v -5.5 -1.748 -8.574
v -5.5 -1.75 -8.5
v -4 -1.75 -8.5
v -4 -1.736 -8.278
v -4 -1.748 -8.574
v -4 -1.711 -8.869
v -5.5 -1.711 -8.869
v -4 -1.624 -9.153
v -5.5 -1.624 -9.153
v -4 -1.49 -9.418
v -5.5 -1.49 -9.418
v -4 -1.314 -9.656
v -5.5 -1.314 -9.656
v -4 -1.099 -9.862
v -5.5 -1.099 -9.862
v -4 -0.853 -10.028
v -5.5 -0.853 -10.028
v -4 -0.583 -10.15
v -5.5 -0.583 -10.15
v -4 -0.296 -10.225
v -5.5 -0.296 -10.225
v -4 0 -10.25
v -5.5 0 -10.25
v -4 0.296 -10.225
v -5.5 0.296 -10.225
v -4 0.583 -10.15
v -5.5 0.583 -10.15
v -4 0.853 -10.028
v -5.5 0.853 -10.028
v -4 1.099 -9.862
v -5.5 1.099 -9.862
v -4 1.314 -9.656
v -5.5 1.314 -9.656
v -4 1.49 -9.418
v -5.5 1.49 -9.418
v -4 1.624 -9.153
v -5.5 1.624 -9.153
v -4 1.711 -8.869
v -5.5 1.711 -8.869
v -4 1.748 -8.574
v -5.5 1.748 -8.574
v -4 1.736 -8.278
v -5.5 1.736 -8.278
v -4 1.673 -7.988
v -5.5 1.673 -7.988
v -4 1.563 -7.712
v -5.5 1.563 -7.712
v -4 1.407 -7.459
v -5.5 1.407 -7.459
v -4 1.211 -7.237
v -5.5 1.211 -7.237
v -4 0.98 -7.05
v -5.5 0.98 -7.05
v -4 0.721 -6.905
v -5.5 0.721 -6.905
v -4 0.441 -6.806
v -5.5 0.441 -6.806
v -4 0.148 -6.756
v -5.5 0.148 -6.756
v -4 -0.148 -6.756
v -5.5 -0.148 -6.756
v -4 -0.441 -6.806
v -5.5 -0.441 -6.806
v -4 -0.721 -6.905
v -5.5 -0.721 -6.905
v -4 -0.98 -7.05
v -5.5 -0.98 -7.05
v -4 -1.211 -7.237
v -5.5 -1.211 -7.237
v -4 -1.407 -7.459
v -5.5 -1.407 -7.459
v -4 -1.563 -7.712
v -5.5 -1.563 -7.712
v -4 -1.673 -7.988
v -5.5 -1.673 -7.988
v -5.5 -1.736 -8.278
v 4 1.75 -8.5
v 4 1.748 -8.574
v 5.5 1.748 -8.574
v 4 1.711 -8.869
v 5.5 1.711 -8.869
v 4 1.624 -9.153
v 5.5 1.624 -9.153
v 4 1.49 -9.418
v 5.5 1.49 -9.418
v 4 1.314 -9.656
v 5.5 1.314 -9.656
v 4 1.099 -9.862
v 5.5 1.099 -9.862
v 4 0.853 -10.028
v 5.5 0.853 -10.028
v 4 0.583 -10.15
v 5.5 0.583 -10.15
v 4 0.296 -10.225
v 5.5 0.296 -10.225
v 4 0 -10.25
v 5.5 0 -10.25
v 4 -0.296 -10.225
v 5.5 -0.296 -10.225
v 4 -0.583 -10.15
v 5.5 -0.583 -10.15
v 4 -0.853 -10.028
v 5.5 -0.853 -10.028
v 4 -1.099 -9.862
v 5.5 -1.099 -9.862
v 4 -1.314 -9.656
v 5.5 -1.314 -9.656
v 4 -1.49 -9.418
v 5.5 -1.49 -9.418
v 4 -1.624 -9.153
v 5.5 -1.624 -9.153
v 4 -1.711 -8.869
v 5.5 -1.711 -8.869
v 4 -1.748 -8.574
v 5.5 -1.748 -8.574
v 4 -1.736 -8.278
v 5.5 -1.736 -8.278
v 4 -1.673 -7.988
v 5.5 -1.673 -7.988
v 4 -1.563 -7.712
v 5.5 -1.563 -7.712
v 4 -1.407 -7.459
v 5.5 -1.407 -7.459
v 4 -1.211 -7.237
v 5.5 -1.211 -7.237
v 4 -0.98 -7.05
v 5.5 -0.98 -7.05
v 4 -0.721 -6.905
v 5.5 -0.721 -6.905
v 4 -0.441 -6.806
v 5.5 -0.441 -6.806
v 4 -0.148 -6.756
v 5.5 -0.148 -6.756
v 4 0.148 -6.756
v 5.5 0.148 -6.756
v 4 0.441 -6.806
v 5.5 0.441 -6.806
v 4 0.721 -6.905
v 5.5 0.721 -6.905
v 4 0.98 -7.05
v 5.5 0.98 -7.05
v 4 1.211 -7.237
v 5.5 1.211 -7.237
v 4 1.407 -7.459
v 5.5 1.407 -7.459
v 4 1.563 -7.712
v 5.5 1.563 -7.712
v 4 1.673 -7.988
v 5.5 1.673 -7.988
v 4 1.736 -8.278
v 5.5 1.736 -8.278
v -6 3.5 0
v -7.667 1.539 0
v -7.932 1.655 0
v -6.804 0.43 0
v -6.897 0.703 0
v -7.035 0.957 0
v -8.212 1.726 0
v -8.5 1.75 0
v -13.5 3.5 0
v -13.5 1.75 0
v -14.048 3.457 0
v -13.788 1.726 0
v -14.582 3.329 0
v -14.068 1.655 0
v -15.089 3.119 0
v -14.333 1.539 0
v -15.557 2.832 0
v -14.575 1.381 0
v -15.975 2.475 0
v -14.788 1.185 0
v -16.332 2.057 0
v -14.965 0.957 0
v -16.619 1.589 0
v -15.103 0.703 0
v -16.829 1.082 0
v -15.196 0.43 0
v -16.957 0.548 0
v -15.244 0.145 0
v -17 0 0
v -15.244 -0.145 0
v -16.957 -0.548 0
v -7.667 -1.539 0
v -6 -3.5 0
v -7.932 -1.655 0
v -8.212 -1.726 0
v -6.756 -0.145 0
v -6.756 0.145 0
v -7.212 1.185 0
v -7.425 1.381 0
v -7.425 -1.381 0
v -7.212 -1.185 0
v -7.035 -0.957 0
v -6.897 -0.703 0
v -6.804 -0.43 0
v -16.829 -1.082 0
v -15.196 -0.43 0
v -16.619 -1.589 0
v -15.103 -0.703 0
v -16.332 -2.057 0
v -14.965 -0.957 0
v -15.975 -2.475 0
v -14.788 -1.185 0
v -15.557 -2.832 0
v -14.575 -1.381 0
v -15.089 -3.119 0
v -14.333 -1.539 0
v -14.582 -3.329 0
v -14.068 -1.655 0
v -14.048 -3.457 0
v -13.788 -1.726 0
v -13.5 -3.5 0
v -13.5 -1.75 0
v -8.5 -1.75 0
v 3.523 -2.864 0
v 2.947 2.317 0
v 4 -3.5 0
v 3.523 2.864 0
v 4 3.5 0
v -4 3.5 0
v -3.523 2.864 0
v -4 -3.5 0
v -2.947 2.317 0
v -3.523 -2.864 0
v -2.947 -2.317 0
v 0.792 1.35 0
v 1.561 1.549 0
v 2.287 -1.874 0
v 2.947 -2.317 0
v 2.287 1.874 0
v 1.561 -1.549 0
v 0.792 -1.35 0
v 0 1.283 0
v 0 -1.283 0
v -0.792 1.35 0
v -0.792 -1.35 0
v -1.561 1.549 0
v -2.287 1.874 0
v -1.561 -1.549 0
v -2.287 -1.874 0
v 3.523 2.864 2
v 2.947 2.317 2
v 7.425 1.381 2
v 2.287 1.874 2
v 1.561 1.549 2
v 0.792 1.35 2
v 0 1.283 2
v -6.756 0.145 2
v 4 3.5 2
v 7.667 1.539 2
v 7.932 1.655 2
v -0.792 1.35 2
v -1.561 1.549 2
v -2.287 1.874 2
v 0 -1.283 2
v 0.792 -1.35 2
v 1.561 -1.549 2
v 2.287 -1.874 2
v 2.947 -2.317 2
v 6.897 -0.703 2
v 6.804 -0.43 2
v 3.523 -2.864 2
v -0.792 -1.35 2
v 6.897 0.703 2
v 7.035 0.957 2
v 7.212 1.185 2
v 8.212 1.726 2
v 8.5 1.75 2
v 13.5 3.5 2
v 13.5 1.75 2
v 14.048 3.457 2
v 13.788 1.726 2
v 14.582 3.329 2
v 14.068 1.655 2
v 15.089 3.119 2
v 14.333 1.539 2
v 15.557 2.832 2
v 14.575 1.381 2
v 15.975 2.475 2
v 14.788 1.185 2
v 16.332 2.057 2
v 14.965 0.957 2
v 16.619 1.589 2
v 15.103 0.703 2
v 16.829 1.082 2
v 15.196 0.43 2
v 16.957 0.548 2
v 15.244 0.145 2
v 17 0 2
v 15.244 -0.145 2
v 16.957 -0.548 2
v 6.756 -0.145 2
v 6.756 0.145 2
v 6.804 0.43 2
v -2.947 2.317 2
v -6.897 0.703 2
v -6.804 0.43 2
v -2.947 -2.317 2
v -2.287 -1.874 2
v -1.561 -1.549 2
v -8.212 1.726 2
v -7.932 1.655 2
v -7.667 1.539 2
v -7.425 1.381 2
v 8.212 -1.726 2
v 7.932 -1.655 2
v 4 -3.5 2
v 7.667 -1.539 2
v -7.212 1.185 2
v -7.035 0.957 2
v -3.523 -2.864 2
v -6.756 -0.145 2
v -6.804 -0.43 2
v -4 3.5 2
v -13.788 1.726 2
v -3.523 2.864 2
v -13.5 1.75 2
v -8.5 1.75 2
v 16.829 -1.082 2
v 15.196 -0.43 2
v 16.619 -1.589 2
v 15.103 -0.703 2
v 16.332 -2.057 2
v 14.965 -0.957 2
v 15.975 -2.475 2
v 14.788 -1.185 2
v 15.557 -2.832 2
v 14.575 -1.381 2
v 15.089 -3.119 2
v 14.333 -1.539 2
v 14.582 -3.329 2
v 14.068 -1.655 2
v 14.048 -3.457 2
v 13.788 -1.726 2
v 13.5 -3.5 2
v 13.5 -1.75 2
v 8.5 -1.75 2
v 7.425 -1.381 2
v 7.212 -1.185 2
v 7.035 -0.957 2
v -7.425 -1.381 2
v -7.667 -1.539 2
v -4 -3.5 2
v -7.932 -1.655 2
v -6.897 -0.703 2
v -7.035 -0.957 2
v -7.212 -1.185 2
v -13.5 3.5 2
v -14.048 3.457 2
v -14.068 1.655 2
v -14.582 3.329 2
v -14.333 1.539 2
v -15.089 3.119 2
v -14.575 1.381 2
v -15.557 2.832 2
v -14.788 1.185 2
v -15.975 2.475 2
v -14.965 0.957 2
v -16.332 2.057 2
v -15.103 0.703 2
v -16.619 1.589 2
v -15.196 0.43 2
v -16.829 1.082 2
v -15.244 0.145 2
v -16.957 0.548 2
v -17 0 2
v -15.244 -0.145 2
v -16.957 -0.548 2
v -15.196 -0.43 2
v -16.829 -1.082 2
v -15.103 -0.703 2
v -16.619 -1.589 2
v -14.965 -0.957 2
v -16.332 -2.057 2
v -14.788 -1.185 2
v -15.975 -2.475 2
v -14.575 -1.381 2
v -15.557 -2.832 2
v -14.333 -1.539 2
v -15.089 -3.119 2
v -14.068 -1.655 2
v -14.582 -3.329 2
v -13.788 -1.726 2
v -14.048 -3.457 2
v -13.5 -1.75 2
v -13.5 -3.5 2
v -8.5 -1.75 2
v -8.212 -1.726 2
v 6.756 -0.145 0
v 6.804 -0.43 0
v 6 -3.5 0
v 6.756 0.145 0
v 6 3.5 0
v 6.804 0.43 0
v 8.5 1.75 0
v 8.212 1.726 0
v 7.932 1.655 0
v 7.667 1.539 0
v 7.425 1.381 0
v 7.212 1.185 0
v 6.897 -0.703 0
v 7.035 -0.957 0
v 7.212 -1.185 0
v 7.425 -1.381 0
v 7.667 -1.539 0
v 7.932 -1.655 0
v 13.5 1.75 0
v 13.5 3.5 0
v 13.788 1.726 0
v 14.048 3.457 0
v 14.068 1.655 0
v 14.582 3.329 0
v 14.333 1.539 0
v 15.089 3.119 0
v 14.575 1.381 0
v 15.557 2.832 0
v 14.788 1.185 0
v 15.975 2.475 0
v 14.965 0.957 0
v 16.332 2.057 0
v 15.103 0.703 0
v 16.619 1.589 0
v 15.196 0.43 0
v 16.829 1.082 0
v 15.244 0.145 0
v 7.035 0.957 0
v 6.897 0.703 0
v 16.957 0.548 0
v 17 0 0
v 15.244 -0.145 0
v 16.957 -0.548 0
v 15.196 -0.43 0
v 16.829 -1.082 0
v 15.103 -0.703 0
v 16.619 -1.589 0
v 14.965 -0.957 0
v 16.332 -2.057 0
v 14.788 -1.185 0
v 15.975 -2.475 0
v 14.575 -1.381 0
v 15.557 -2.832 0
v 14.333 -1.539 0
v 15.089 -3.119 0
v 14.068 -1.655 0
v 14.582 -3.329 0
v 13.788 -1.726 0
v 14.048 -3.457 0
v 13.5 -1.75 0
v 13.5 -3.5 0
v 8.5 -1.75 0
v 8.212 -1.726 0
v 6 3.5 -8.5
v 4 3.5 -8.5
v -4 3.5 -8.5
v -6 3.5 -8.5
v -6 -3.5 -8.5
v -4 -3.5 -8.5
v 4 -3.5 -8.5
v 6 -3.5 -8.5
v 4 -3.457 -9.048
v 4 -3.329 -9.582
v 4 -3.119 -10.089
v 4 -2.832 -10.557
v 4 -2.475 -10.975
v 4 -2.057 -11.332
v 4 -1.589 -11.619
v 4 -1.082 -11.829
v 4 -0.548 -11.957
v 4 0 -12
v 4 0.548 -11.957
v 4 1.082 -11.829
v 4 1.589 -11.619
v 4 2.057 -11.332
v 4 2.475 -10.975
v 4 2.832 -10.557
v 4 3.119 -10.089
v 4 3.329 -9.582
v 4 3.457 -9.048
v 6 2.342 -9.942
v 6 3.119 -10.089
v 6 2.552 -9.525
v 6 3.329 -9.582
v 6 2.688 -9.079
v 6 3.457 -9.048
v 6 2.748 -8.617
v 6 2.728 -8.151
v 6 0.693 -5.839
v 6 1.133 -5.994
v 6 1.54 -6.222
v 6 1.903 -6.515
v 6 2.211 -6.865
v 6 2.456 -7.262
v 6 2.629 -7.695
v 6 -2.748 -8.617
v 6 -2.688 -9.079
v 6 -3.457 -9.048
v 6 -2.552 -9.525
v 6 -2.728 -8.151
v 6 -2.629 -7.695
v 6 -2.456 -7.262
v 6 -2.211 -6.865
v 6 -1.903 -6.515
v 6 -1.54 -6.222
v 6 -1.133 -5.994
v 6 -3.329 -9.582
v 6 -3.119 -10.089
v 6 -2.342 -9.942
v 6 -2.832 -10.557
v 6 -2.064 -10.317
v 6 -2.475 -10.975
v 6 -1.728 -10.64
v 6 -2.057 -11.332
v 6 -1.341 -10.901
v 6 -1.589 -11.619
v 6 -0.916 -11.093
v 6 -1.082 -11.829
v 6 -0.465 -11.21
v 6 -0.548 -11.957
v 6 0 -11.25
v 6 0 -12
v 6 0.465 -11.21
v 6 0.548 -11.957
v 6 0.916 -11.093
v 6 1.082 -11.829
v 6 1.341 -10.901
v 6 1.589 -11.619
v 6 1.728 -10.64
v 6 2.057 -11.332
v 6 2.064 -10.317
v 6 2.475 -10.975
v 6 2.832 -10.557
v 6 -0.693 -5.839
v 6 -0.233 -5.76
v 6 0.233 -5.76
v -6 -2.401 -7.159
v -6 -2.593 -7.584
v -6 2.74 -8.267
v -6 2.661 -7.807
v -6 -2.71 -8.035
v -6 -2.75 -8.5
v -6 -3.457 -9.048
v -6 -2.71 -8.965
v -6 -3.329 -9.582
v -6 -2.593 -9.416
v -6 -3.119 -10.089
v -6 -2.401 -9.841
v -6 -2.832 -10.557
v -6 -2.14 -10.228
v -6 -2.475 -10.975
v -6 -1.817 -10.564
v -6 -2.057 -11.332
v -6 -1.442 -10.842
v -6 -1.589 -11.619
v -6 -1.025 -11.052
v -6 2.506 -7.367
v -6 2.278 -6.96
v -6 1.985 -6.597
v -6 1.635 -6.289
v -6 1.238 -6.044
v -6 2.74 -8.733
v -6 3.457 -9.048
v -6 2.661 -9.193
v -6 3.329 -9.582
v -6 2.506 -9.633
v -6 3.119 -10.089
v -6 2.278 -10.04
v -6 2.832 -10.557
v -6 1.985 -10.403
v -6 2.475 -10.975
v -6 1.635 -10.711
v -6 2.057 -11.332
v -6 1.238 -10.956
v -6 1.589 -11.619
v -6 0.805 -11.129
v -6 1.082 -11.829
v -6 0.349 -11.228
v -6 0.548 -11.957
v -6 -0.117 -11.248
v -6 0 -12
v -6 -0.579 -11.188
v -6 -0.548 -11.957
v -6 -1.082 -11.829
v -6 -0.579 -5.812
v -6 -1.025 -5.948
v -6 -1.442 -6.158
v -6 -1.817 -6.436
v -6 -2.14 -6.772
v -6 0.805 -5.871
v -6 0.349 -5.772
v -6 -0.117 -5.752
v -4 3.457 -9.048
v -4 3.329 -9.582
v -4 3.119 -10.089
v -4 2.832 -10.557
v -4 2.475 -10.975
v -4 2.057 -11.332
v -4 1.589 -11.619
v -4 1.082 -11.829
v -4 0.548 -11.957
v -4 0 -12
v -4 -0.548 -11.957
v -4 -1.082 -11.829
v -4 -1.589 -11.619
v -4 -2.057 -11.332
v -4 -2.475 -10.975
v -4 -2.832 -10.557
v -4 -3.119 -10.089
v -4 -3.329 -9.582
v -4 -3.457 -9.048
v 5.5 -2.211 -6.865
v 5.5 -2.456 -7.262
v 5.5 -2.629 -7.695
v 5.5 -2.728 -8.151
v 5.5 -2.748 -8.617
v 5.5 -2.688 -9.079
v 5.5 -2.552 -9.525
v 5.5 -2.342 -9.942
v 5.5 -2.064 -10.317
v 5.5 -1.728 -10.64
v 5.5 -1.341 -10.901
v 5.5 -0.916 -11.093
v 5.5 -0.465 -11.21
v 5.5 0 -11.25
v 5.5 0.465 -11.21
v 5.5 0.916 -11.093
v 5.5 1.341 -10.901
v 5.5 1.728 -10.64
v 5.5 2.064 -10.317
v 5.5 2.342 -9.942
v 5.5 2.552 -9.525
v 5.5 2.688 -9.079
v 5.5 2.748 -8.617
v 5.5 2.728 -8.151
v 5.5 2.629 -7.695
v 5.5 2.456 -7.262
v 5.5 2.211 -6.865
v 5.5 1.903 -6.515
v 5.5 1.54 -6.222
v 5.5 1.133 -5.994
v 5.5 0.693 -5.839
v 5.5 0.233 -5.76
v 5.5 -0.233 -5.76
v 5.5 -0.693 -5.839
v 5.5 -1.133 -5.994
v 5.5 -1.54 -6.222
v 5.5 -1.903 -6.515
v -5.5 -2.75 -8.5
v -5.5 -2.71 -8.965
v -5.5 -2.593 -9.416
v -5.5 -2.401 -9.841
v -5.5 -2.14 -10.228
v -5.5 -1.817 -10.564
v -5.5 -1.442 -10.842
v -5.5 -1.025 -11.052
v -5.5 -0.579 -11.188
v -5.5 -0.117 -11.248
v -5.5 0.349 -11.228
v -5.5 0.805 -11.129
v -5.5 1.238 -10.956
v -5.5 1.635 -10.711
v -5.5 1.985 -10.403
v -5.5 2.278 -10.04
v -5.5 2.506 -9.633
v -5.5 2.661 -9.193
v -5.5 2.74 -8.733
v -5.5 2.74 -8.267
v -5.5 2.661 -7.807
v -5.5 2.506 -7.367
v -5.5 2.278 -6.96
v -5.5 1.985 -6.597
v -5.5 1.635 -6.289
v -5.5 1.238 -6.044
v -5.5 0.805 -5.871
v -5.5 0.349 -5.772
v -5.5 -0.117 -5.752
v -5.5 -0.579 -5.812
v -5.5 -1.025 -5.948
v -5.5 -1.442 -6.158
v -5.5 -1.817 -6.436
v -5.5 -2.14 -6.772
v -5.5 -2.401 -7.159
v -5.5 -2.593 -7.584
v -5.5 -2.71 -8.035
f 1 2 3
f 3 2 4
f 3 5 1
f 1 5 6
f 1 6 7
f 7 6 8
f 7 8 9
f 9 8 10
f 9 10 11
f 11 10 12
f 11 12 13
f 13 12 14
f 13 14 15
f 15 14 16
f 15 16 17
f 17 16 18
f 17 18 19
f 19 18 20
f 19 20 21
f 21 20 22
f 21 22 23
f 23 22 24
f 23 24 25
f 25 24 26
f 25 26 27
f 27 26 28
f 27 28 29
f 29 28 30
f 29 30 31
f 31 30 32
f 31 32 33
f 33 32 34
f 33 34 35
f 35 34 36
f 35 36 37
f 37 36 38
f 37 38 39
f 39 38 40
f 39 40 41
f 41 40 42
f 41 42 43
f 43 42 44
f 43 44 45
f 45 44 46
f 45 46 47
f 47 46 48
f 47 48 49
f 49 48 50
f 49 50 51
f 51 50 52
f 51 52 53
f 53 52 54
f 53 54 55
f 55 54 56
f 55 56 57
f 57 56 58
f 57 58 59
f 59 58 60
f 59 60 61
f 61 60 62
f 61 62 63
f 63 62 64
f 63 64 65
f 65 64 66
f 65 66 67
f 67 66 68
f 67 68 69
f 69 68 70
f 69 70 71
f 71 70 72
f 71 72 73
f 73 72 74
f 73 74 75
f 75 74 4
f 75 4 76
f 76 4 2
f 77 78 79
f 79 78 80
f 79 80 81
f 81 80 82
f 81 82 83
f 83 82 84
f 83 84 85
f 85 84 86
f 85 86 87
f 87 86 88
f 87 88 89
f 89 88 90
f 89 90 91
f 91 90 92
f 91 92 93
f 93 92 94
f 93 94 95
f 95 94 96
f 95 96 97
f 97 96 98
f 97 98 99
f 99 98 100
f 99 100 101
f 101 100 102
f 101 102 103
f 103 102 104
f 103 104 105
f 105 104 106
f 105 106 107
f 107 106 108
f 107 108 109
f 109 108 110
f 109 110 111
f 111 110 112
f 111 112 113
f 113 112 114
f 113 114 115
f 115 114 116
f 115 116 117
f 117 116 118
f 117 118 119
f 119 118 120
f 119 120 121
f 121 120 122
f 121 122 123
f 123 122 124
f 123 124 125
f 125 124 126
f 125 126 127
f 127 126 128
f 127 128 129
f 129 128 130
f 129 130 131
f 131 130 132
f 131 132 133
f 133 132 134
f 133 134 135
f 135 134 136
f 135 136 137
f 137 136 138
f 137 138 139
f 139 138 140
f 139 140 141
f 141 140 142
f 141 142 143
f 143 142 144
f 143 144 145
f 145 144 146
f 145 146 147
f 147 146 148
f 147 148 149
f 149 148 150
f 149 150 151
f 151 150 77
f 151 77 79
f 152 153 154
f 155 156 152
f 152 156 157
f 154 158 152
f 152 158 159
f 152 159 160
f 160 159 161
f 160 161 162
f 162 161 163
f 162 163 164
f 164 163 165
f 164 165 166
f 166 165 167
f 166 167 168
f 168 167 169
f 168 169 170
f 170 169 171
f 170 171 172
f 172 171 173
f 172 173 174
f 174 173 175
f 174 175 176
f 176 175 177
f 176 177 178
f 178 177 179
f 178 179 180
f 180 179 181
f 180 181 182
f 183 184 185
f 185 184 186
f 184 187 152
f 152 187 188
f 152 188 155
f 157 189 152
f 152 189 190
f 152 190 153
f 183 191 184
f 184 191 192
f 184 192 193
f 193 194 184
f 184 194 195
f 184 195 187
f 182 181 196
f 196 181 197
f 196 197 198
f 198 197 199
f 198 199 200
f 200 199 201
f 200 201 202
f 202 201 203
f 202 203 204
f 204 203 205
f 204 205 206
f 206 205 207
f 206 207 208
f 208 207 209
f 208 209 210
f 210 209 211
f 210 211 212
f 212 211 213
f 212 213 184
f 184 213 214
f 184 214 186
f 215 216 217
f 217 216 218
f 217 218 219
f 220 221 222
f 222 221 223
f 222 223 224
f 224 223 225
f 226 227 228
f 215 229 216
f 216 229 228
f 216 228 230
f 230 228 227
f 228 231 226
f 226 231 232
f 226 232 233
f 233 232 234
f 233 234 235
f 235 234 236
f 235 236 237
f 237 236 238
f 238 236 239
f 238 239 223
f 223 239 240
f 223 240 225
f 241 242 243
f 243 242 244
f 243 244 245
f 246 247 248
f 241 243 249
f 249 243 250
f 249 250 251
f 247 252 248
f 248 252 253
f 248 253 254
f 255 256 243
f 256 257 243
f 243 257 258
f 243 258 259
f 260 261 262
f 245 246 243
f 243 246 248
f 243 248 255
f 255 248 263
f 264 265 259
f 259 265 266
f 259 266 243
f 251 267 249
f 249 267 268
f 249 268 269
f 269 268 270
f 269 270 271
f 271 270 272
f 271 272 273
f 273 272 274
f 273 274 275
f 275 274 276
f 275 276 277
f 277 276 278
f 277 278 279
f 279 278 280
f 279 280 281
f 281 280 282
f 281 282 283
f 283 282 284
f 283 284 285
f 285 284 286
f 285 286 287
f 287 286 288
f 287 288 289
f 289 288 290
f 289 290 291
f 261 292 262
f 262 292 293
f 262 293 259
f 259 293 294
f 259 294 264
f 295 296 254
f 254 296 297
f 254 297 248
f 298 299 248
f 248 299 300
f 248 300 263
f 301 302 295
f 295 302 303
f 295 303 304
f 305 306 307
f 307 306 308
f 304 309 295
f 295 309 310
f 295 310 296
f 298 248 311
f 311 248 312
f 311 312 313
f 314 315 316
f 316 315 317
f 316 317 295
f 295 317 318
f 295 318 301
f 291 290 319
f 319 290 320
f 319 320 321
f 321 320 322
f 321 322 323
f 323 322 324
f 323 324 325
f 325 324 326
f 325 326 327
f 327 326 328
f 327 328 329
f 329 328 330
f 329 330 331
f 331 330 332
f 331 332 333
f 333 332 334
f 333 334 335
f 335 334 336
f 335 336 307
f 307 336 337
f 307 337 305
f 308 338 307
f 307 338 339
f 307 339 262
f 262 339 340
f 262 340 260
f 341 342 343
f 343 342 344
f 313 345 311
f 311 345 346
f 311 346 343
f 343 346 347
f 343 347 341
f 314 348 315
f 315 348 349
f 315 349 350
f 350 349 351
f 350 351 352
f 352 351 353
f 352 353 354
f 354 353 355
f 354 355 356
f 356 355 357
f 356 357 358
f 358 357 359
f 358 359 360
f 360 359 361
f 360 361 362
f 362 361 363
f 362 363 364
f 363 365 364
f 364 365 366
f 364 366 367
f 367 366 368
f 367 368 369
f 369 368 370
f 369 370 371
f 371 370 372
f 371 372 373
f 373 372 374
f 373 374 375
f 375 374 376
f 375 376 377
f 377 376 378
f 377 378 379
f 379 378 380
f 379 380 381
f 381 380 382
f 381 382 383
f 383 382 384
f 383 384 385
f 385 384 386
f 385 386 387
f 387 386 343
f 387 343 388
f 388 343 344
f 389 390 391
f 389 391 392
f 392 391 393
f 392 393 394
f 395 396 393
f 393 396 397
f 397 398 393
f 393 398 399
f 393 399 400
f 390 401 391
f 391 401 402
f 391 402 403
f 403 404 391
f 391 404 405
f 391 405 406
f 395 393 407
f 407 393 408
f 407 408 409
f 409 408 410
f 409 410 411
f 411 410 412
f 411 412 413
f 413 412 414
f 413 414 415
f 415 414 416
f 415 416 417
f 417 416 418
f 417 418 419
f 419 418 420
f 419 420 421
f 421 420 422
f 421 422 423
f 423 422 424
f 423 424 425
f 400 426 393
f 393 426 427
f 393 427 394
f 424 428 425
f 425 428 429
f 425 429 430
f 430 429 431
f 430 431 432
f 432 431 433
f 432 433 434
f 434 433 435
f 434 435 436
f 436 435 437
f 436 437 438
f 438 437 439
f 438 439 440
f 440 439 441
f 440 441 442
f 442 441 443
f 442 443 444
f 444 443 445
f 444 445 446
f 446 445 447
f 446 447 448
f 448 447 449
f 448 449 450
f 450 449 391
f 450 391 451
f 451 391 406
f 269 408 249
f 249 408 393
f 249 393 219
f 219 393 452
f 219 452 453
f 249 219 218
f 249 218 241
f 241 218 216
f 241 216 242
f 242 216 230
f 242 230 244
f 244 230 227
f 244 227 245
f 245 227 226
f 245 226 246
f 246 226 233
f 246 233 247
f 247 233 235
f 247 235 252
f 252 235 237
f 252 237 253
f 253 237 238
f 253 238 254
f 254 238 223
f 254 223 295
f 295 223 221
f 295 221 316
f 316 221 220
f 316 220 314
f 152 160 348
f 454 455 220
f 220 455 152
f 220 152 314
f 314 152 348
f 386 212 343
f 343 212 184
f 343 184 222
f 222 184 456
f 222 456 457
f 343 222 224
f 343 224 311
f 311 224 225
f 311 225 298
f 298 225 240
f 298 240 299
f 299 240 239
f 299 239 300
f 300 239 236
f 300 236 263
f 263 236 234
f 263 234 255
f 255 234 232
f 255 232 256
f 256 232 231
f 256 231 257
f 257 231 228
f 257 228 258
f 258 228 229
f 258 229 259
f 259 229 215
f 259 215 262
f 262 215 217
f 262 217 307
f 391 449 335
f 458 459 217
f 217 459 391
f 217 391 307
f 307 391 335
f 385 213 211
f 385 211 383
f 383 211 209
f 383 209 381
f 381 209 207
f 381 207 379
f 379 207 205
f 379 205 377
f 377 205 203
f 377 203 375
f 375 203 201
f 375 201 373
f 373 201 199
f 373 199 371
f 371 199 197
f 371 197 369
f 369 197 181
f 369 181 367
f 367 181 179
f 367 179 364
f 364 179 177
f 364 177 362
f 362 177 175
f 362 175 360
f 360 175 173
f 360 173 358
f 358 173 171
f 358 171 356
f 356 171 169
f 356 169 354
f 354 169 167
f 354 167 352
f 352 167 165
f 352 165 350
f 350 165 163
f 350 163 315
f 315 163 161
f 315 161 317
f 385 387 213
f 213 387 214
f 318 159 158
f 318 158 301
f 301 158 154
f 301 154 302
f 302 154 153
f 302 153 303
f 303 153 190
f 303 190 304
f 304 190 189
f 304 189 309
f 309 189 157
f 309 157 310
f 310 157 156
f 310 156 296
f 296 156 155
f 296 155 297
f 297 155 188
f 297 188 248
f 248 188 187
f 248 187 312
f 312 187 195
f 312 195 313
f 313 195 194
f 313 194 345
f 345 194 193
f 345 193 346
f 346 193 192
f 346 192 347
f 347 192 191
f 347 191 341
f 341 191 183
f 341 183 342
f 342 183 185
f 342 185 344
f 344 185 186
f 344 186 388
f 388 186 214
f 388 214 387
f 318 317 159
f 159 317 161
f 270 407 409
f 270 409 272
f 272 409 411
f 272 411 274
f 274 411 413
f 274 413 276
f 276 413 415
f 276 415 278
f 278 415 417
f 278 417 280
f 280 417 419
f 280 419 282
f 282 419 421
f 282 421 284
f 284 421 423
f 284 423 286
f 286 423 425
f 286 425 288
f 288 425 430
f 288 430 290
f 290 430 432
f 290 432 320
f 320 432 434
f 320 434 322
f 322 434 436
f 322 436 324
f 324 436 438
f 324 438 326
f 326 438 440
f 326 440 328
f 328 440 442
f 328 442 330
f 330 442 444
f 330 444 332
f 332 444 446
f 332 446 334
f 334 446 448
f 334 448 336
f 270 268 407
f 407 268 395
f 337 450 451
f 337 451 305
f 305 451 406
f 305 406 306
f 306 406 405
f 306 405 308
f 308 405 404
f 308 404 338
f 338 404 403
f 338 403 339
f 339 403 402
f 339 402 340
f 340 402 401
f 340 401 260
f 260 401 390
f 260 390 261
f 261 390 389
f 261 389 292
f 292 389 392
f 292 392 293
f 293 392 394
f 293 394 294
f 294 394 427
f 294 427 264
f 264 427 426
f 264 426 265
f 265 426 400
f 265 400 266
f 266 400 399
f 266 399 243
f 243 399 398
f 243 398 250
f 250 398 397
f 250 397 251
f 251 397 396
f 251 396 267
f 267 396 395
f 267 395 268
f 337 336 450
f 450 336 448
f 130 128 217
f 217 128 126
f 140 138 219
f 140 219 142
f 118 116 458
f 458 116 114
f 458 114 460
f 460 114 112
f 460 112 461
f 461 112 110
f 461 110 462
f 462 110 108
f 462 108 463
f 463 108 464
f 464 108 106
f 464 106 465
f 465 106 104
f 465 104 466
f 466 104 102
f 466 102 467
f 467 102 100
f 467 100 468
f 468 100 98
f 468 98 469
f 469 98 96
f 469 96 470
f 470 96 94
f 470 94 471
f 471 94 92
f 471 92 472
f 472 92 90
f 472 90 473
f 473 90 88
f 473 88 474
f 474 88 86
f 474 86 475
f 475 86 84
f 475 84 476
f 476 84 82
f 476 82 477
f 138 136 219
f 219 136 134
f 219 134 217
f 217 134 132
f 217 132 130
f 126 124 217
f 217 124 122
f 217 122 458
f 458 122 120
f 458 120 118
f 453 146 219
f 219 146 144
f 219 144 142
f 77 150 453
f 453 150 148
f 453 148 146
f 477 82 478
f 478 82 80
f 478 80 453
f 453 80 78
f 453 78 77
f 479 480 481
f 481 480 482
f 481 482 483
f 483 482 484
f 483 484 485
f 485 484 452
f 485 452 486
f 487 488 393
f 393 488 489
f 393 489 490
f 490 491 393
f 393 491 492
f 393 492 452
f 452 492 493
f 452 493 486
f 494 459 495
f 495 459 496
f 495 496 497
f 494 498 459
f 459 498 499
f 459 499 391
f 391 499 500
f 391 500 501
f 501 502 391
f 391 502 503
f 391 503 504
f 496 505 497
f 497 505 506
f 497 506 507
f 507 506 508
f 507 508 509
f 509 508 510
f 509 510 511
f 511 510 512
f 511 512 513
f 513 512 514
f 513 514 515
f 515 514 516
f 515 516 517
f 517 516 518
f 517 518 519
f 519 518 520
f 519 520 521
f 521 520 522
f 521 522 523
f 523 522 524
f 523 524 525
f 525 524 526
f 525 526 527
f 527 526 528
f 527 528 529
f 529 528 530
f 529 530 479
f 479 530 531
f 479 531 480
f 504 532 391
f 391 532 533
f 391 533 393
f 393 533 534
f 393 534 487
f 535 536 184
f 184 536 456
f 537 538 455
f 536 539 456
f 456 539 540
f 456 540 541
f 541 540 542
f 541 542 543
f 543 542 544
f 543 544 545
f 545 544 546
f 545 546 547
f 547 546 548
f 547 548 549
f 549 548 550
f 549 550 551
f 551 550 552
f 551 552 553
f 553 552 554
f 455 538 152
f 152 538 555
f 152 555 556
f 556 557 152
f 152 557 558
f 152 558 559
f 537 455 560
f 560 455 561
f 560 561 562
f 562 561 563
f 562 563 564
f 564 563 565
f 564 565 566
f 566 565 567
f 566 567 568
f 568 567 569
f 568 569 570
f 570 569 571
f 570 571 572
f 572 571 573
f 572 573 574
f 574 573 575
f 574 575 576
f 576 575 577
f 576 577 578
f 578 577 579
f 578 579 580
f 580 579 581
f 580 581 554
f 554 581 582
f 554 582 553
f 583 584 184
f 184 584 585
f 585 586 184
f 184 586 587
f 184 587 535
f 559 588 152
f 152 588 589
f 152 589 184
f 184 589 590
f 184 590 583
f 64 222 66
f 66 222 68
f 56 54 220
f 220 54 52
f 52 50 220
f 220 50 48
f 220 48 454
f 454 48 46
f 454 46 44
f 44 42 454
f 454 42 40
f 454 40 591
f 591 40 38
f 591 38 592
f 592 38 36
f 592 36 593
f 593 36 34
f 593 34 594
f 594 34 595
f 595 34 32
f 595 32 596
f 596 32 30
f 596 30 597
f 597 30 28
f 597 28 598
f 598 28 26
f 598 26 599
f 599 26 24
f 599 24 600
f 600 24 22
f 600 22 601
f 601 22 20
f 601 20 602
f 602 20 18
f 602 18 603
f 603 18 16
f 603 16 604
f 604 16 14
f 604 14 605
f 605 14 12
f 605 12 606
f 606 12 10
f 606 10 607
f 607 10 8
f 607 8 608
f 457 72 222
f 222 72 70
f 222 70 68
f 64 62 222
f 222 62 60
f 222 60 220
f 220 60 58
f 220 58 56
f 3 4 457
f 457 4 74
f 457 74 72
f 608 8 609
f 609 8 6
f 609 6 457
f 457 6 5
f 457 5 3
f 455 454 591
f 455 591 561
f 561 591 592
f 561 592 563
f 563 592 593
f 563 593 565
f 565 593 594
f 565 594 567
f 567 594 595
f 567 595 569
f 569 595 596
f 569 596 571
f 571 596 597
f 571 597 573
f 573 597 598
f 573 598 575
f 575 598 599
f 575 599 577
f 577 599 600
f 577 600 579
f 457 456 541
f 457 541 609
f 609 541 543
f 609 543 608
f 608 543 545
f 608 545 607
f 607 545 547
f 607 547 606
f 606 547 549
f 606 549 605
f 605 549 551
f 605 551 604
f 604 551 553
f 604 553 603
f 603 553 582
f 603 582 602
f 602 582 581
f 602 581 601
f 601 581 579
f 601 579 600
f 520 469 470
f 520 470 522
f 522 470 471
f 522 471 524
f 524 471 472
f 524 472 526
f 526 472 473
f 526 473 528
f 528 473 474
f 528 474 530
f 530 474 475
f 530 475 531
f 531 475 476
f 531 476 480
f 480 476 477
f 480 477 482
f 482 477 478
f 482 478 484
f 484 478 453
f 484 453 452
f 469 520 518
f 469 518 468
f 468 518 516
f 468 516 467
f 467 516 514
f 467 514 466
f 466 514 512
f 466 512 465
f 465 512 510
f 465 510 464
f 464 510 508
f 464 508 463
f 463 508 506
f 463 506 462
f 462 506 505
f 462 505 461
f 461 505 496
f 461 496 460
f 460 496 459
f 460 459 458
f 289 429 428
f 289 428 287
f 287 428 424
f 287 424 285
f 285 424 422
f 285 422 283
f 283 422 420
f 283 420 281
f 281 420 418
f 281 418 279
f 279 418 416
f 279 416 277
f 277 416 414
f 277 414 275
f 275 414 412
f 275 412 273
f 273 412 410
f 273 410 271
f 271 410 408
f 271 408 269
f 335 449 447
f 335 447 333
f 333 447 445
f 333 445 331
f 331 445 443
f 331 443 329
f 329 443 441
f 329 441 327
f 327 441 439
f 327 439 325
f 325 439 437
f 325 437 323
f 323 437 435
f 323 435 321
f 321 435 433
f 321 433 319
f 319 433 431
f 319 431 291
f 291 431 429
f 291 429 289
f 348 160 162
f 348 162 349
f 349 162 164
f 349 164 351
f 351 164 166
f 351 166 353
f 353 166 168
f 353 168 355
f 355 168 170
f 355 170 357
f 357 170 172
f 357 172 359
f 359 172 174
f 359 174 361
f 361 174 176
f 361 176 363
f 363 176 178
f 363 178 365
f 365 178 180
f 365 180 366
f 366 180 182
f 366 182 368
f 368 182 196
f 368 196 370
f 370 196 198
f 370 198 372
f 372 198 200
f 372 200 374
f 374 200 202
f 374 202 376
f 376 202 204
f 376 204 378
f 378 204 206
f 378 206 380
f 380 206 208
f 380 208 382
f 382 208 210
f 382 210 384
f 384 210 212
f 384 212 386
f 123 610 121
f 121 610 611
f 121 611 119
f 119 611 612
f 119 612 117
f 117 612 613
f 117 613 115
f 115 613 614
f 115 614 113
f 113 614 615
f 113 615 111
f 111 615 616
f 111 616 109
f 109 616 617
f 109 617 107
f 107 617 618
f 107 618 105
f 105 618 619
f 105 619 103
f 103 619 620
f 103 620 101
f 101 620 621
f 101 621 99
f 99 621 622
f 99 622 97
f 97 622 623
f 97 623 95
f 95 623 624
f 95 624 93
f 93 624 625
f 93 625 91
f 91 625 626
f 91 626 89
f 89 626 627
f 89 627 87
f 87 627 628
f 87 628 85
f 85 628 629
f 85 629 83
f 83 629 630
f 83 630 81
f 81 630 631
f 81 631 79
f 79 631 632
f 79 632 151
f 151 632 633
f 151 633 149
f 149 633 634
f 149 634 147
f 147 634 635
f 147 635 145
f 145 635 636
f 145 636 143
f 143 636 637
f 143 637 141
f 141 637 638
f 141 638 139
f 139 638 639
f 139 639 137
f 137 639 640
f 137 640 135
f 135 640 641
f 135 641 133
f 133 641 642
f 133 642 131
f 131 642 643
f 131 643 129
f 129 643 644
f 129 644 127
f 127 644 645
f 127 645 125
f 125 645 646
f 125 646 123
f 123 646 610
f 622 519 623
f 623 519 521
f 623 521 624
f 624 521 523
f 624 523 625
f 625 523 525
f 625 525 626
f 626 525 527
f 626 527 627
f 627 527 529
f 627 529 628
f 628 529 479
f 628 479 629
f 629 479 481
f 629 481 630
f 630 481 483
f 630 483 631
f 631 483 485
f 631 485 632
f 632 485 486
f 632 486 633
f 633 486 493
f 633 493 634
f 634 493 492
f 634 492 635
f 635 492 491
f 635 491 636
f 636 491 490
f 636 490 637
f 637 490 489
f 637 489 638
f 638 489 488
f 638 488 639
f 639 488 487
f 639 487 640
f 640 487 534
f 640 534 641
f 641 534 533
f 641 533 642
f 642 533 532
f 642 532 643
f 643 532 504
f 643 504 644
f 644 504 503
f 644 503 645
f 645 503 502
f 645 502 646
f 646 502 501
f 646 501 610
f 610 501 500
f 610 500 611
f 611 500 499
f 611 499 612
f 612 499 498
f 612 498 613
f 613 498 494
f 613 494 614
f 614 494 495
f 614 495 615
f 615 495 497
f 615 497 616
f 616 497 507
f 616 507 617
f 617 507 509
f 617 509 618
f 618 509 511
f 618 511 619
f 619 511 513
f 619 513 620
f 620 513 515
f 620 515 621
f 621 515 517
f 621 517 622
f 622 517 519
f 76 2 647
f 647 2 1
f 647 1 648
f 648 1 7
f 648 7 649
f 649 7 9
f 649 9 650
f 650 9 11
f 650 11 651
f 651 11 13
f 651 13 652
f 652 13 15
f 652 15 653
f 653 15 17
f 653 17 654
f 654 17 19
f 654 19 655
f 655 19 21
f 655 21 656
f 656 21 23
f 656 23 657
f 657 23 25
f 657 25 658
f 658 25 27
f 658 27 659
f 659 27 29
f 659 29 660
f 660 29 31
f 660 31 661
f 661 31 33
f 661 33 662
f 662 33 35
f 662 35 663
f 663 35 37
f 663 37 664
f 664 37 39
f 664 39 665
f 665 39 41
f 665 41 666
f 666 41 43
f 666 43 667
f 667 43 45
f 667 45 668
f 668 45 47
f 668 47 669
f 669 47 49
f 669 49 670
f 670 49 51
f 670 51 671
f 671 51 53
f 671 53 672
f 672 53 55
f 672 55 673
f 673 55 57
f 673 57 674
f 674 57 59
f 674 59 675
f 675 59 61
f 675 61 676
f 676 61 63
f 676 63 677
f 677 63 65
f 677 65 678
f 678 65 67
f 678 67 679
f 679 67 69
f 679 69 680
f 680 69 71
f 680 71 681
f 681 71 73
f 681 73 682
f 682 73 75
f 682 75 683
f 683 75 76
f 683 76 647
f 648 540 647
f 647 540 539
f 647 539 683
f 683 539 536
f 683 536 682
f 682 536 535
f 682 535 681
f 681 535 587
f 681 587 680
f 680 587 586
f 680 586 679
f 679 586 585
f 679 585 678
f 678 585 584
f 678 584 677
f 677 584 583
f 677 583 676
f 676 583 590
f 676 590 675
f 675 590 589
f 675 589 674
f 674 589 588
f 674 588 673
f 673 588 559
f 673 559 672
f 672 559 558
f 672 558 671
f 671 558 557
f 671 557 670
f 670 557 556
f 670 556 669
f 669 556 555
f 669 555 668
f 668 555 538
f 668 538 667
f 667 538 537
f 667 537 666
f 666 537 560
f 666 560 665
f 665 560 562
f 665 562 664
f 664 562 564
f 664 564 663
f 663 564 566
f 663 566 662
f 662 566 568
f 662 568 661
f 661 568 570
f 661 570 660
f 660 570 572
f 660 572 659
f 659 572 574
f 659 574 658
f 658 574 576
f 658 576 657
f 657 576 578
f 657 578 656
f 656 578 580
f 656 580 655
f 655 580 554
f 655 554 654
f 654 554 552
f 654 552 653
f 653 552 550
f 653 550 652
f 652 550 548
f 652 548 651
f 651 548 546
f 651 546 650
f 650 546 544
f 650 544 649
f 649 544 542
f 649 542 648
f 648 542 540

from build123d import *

# Parameters (mm, degrees)
EXTRUDE_2_DEPTH     = 2
SKETCH_4_W          = 2
SKETCH_4_H          = 7
EXTRUDE_3_DEPTH     = 12
FILLET_1_R          = 3.5
SKETCH_5_R          = 1.75
CUT_EXTRUDE_1_DEPTH = 27.177280225
FILLET_2_R          = 3.5
SKETCH_6_R          = 2.75
CUT_EXTRUDE_2_DEPTH = 0.5
CUT_EXTRUDE_START   = -0.5
SKETCH_7_R          = 2.75
CUT_EXTRUDE_3_DEPTH = 0.5


with BuildPart() as part:
    # 草图3 → 凸台-拉伸2 (new body)
    with BuildSketch(Plane.XY):
        with BuildLine():
            Line((-17, -3.5), (-4, -3.5))
            ThreePointArc((-4, -3.5), (0, -1.283009434), (4, -3.5))
            Line((4, -3.5), (17, -3.5))
            Line((17, -3.5), (17, 3.5))
            Line((17, 3.5), (4, 3.5))
            ThreePointArc((4, 3.5), (0, 1.283009434), (-4, 3.5))
            Line((-4, 3.5), (-17, 3.5))
            Line((-17, 3.5), (-17, -3.5))
        make_face()
        with BuildLine():
            Line((-13.5, 1.75), (-8.5, 1.75))
            ThreePointArc((-8.5, 1.75), (-6.75, 0), (-8.5, -1.75))
            Line((-8.5, -1.75), (-13.5, -1.75))
            ThreePointArc((-13.5, -1.75), (-15.25, 0), (-13.5, 1.75))
        make_face(mode=Mode.SUBTRACT)
        with BuildLine():
            Line((13.5, 1.75), (8.5, 1.75))
            ThreePointArc((8.5, 1.75), (6.75, 0), (8.5, -1.75))
            Line((8.5, -1.75), (13.5, -1.75))
            ThreePointArc((13.5, -1.75), (15.25, 0), (13.5, 1.75))
        make_face(mode=Mode.SUBTRACT)
    extrude(amount=EXTRUDE_2_DEPTH)

    # 草图4 → 凸台-拉伸3 (add)
    with BuildSketch(Plane(origin=(0, 0, 0), x_dir=(-1, 0, 0), z_dir=(0, 0, -1))):
        with Locations((-5, 0)):
            Rectangle(SKETCH_4_W, SKETCH_4_H)
        with Locations((5, 0)):
            Rectangle(SKETCH_4_W, SKETCH_4_H)
    extrude(amount=EXTRUDE_3_DEPTH)

    # 圆角1
    fillet_1_edges = [part.edges().sort_by_distance(p)[0] for p in [
        (-5, -3.5, -12),
        (-5, 3.5, -12),
        (5, -3.5, -12),
        (5, 3.5, -12),
    ]]
    fillet(fillet_1_edges, radius=FILLET_1_R - 0.0001)  # a hair under: the kernel refuses the full size

    # 草图5 → 切除-拉伸1 (cut, through all)
    with BuildSketch(Plane(origin=(6, 0, 0), x_dir=(0, 0, -1), z_dir=(1, 0, 0))):
        with Locations(Location((8.5, 0, 0), (0, 0, 270))):
            Circle(SKETCH_5_R)
    extrude(amount=-CUT_EXTRUDE_1_DEPTH, mode=Mode.SUBTRACT)

    # 圆角2
    fillet_2_edges = [part.edges().sort_by_distance(p)[0] for p in [
        (17, -3.5, 1),
        (17, 3.5, 1),
        (-17, -3.5, 1),
        (-17, 3.5, 1),
    ]]
    fillet(fillet_2_edges, radius=FILLET_2_R - 0.0001)  # a hair under: the kernel refuses the full size

    # 草图6 → 切除-拉伸2 (cut)
    with BuildSketch(Plane(origin=(6, 0, 0), x_dir=(0, 0, -1), z_dir=(1, 0, 0))):
        with Locations((8.5, 0)):
            Circle(SKETCH_6_R)
    extrude(amount=-CUT_EXTRUDE_2_DEPTH, mode=Mode.SUBTRACT)

    # 草图7 → 切除-拉伸3 (cut)
    with BuildSketch(Plane.ZY.offset(6).offset(CUT_EXTRUDE_START)):
        with Locations(Location((-8.5, 0, 0), (0, 0, 180))):
            Circle(SKETCH_7_R)
    extrude(amount=CUT_EXTRUDE_3_DEPTH, mode=Mode.SUBTRACT)


solid = part.part
